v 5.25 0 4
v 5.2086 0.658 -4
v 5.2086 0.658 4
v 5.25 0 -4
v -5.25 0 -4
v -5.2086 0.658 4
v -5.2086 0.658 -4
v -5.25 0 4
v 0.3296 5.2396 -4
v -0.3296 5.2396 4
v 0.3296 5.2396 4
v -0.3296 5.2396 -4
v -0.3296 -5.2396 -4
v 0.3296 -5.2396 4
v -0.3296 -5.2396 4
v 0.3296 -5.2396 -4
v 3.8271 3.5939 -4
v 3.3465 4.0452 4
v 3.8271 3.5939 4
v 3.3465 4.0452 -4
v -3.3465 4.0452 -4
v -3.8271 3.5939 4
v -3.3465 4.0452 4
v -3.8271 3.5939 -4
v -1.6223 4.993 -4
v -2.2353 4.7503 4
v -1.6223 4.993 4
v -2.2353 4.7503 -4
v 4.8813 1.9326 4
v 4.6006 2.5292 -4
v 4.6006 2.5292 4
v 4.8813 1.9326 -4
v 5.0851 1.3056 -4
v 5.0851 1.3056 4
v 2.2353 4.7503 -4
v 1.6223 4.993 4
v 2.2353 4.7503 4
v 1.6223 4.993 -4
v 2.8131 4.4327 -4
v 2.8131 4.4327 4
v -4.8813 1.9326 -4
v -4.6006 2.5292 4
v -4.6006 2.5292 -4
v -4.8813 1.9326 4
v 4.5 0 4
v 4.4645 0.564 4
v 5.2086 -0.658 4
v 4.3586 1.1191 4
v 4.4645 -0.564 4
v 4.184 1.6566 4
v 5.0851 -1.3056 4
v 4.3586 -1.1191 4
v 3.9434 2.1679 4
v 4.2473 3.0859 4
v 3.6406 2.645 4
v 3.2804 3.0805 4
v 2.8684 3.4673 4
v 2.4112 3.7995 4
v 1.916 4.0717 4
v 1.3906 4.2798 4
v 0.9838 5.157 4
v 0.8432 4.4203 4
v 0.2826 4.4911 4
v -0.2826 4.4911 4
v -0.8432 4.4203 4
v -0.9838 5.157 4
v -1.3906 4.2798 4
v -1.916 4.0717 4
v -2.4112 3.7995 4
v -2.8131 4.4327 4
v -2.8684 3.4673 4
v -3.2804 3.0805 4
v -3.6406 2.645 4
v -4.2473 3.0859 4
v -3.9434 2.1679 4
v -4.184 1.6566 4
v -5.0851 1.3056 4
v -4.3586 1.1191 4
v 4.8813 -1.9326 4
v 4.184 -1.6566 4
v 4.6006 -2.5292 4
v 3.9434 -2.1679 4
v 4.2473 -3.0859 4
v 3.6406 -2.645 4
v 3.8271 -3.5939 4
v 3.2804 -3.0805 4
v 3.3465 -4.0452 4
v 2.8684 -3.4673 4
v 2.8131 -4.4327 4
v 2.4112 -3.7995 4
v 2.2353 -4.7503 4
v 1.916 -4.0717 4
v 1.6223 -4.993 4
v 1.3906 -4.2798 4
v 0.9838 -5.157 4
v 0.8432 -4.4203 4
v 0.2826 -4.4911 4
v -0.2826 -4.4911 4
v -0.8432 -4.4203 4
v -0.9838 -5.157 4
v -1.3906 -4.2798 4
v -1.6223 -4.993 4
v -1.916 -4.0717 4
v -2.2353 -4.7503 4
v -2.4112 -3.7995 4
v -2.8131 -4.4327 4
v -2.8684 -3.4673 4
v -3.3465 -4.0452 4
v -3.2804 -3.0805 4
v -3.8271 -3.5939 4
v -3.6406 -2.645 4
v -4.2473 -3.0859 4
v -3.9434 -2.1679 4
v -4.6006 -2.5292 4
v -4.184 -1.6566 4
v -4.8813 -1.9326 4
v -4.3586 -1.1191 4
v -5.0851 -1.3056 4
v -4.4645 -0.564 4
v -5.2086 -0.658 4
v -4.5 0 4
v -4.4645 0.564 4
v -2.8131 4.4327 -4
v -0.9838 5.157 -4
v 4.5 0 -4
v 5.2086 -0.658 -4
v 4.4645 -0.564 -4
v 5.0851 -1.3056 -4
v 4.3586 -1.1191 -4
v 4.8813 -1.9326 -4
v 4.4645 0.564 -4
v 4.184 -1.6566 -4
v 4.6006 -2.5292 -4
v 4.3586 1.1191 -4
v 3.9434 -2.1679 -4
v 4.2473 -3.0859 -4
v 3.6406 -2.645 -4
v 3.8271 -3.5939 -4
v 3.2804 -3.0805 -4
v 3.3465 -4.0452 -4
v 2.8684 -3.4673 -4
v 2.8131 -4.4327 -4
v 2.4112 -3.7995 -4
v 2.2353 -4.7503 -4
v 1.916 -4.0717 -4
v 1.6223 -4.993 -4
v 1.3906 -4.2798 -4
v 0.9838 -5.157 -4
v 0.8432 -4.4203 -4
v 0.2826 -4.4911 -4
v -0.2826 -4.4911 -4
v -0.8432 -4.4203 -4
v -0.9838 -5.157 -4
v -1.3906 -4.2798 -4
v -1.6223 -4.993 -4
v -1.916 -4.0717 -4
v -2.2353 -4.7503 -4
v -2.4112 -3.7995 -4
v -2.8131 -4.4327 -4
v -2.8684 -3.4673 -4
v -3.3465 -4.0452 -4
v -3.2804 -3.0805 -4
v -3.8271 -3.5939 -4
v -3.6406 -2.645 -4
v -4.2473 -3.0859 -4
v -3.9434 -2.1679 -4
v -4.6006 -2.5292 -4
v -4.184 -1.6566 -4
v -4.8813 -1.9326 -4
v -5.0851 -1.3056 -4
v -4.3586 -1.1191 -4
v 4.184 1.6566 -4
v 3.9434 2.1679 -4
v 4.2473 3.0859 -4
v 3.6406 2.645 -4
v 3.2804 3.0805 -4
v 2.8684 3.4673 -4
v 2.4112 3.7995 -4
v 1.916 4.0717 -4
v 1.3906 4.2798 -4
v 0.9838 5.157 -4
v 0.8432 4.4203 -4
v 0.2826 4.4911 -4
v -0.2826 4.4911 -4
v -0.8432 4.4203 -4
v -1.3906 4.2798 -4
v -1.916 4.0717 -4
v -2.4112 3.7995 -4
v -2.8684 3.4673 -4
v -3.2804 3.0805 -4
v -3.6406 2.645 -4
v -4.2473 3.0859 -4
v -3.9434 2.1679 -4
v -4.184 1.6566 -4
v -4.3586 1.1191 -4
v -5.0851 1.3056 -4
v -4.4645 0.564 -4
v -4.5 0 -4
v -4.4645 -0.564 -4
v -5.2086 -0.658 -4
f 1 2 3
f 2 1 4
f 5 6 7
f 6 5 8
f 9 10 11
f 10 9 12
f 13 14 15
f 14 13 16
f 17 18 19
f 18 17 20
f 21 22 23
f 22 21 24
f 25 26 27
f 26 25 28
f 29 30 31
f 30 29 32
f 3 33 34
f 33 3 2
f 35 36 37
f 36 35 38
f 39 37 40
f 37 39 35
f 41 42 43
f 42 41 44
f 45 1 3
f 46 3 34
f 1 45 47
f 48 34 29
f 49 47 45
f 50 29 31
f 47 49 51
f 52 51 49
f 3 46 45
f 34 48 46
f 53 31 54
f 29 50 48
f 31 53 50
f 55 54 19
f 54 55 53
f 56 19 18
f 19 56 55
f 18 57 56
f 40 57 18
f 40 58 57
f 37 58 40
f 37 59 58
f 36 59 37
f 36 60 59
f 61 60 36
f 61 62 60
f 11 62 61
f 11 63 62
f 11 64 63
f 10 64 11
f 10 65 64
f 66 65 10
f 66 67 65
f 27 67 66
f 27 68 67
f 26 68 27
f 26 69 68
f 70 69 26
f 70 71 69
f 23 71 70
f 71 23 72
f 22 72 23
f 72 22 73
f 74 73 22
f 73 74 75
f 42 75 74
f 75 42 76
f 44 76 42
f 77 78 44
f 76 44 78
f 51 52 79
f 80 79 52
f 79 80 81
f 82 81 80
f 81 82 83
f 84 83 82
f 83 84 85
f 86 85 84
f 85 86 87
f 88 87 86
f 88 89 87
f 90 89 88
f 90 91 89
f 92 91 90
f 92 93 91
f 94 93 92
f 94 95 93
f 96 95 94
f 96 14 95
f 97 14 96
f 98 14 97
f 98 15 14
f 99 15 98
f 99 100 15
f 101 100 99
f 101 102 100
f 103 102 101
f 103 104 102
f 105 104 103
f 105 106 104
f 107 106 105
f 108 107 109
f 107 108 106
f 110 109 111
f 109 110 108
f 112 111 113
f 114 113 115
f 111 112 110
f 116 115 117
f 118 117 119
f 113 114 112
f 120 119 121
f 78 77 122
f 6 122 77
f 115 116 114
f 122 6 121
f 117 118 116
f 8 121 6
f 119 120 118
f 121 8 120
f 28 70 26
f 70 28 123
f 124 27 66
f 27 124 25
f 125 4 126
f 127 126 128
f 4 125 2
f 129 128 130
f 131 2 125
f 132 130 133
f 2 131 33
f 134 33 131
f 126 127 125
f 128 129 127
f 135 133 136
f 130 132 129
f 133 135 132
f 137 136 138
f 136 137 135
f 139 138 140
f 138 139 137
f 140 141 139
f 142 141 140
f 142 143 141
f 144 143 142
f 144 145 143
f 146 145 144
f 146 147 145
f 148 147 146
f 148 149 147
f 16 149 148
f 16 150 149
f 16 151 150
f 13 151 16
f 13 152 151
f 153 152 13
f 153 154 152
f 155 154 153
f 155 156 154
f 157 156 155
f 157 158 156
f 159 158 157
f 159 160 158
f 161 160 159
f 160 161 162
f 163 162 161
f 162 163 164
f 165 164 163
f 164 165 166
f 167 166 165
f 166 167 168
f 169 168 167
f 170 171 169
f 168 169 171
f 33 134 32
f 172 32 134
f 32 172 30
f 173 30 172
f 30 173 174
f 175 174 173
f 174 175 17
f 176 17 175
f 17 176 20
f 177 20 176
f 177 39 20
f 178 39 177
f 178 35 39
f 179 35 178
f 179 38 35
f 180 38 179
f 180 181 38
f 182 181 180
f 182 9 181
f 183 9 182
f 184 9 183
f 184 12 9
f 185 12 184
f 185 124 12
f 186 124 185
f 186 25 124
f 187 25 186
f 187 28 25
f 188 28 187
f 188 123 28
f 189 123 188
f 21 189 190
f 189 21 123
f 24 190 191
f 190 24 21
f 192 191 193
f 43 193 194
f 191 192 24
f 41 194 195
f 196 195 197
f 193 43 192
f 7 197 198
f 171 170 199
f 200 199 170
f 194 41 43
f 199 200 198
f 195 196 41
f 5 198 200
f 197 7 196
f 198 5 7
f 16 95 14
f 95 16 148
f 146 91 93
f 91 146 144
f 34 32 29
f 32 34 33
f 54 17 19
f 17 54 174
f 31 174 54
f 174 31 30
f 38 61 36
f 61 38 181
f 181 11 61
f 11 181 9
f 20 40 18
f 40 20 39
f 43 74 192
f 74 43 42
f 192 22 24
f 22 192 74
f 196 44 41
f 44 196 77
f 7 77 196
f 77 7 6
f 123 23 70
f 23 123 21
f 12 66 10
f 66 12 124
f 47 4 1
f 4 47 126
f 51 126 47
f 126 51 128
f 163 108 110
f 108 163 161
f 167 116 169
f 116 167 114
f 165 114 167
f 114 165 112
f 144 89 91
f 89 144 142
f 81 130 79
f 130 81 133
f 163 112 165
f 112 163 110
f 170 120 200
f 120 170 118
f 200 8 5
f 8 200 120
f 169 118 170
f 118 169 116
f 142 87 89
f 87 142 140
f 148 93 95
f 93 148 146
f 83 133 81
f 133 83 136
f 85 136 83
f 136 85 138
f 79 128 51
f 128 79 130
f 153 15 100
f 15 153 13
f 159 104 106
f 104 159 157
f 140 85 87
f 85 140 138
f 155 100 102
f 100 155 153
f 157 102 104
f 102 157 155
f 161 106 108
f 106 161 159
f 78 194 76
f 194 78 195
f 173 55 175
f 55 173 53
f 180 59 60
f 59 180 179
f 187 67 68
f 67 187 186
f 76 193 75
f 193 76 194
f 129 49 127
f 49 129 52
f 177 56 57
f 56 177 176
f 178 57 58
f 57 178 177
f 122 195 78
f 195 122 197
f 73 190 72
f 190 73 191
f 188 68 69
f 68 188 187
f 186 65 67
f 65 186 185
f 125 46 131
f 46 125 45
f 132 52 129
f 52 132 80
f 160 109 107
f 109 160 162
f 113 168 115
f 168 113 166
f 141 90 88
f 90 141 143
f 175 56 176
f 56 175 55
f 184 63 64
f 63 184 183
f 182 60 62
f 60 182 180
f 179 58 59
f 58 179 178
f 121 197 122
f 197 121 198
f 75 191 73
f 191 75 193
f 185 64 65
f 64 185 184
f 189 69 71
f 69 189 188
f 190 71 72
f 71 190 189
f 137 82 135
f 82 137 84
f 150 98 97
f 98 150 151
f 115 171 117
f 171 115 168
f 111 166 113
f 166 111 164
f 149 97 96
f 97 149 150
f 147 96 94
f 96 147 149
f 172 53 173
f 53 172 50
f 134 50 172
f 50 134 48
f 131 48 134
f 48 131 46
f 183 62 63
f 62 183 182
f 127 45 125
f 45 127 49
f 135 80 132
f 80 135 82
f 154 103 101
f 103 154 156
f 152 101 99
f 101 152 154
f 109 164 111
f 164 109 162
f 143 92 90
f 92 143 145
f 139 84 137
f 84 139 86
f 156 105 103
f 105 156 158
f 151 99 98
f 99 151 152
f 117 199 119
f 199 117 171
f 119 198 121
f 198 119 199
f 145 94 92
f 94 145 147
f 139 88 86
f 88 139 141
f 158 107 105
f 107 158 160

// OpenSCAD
$fn = 50;


difference() {
	union() {
		translate(v = [0, 0, -4.0000000000]) {
			cylinder(h = 8, r = 5.2500000000);
		}
	}
	union() {
		translate(v = [0, 0, -100.0000000000]) {
			cylinder(h = 200, r = 4.5000000000);
		}
	}
}
